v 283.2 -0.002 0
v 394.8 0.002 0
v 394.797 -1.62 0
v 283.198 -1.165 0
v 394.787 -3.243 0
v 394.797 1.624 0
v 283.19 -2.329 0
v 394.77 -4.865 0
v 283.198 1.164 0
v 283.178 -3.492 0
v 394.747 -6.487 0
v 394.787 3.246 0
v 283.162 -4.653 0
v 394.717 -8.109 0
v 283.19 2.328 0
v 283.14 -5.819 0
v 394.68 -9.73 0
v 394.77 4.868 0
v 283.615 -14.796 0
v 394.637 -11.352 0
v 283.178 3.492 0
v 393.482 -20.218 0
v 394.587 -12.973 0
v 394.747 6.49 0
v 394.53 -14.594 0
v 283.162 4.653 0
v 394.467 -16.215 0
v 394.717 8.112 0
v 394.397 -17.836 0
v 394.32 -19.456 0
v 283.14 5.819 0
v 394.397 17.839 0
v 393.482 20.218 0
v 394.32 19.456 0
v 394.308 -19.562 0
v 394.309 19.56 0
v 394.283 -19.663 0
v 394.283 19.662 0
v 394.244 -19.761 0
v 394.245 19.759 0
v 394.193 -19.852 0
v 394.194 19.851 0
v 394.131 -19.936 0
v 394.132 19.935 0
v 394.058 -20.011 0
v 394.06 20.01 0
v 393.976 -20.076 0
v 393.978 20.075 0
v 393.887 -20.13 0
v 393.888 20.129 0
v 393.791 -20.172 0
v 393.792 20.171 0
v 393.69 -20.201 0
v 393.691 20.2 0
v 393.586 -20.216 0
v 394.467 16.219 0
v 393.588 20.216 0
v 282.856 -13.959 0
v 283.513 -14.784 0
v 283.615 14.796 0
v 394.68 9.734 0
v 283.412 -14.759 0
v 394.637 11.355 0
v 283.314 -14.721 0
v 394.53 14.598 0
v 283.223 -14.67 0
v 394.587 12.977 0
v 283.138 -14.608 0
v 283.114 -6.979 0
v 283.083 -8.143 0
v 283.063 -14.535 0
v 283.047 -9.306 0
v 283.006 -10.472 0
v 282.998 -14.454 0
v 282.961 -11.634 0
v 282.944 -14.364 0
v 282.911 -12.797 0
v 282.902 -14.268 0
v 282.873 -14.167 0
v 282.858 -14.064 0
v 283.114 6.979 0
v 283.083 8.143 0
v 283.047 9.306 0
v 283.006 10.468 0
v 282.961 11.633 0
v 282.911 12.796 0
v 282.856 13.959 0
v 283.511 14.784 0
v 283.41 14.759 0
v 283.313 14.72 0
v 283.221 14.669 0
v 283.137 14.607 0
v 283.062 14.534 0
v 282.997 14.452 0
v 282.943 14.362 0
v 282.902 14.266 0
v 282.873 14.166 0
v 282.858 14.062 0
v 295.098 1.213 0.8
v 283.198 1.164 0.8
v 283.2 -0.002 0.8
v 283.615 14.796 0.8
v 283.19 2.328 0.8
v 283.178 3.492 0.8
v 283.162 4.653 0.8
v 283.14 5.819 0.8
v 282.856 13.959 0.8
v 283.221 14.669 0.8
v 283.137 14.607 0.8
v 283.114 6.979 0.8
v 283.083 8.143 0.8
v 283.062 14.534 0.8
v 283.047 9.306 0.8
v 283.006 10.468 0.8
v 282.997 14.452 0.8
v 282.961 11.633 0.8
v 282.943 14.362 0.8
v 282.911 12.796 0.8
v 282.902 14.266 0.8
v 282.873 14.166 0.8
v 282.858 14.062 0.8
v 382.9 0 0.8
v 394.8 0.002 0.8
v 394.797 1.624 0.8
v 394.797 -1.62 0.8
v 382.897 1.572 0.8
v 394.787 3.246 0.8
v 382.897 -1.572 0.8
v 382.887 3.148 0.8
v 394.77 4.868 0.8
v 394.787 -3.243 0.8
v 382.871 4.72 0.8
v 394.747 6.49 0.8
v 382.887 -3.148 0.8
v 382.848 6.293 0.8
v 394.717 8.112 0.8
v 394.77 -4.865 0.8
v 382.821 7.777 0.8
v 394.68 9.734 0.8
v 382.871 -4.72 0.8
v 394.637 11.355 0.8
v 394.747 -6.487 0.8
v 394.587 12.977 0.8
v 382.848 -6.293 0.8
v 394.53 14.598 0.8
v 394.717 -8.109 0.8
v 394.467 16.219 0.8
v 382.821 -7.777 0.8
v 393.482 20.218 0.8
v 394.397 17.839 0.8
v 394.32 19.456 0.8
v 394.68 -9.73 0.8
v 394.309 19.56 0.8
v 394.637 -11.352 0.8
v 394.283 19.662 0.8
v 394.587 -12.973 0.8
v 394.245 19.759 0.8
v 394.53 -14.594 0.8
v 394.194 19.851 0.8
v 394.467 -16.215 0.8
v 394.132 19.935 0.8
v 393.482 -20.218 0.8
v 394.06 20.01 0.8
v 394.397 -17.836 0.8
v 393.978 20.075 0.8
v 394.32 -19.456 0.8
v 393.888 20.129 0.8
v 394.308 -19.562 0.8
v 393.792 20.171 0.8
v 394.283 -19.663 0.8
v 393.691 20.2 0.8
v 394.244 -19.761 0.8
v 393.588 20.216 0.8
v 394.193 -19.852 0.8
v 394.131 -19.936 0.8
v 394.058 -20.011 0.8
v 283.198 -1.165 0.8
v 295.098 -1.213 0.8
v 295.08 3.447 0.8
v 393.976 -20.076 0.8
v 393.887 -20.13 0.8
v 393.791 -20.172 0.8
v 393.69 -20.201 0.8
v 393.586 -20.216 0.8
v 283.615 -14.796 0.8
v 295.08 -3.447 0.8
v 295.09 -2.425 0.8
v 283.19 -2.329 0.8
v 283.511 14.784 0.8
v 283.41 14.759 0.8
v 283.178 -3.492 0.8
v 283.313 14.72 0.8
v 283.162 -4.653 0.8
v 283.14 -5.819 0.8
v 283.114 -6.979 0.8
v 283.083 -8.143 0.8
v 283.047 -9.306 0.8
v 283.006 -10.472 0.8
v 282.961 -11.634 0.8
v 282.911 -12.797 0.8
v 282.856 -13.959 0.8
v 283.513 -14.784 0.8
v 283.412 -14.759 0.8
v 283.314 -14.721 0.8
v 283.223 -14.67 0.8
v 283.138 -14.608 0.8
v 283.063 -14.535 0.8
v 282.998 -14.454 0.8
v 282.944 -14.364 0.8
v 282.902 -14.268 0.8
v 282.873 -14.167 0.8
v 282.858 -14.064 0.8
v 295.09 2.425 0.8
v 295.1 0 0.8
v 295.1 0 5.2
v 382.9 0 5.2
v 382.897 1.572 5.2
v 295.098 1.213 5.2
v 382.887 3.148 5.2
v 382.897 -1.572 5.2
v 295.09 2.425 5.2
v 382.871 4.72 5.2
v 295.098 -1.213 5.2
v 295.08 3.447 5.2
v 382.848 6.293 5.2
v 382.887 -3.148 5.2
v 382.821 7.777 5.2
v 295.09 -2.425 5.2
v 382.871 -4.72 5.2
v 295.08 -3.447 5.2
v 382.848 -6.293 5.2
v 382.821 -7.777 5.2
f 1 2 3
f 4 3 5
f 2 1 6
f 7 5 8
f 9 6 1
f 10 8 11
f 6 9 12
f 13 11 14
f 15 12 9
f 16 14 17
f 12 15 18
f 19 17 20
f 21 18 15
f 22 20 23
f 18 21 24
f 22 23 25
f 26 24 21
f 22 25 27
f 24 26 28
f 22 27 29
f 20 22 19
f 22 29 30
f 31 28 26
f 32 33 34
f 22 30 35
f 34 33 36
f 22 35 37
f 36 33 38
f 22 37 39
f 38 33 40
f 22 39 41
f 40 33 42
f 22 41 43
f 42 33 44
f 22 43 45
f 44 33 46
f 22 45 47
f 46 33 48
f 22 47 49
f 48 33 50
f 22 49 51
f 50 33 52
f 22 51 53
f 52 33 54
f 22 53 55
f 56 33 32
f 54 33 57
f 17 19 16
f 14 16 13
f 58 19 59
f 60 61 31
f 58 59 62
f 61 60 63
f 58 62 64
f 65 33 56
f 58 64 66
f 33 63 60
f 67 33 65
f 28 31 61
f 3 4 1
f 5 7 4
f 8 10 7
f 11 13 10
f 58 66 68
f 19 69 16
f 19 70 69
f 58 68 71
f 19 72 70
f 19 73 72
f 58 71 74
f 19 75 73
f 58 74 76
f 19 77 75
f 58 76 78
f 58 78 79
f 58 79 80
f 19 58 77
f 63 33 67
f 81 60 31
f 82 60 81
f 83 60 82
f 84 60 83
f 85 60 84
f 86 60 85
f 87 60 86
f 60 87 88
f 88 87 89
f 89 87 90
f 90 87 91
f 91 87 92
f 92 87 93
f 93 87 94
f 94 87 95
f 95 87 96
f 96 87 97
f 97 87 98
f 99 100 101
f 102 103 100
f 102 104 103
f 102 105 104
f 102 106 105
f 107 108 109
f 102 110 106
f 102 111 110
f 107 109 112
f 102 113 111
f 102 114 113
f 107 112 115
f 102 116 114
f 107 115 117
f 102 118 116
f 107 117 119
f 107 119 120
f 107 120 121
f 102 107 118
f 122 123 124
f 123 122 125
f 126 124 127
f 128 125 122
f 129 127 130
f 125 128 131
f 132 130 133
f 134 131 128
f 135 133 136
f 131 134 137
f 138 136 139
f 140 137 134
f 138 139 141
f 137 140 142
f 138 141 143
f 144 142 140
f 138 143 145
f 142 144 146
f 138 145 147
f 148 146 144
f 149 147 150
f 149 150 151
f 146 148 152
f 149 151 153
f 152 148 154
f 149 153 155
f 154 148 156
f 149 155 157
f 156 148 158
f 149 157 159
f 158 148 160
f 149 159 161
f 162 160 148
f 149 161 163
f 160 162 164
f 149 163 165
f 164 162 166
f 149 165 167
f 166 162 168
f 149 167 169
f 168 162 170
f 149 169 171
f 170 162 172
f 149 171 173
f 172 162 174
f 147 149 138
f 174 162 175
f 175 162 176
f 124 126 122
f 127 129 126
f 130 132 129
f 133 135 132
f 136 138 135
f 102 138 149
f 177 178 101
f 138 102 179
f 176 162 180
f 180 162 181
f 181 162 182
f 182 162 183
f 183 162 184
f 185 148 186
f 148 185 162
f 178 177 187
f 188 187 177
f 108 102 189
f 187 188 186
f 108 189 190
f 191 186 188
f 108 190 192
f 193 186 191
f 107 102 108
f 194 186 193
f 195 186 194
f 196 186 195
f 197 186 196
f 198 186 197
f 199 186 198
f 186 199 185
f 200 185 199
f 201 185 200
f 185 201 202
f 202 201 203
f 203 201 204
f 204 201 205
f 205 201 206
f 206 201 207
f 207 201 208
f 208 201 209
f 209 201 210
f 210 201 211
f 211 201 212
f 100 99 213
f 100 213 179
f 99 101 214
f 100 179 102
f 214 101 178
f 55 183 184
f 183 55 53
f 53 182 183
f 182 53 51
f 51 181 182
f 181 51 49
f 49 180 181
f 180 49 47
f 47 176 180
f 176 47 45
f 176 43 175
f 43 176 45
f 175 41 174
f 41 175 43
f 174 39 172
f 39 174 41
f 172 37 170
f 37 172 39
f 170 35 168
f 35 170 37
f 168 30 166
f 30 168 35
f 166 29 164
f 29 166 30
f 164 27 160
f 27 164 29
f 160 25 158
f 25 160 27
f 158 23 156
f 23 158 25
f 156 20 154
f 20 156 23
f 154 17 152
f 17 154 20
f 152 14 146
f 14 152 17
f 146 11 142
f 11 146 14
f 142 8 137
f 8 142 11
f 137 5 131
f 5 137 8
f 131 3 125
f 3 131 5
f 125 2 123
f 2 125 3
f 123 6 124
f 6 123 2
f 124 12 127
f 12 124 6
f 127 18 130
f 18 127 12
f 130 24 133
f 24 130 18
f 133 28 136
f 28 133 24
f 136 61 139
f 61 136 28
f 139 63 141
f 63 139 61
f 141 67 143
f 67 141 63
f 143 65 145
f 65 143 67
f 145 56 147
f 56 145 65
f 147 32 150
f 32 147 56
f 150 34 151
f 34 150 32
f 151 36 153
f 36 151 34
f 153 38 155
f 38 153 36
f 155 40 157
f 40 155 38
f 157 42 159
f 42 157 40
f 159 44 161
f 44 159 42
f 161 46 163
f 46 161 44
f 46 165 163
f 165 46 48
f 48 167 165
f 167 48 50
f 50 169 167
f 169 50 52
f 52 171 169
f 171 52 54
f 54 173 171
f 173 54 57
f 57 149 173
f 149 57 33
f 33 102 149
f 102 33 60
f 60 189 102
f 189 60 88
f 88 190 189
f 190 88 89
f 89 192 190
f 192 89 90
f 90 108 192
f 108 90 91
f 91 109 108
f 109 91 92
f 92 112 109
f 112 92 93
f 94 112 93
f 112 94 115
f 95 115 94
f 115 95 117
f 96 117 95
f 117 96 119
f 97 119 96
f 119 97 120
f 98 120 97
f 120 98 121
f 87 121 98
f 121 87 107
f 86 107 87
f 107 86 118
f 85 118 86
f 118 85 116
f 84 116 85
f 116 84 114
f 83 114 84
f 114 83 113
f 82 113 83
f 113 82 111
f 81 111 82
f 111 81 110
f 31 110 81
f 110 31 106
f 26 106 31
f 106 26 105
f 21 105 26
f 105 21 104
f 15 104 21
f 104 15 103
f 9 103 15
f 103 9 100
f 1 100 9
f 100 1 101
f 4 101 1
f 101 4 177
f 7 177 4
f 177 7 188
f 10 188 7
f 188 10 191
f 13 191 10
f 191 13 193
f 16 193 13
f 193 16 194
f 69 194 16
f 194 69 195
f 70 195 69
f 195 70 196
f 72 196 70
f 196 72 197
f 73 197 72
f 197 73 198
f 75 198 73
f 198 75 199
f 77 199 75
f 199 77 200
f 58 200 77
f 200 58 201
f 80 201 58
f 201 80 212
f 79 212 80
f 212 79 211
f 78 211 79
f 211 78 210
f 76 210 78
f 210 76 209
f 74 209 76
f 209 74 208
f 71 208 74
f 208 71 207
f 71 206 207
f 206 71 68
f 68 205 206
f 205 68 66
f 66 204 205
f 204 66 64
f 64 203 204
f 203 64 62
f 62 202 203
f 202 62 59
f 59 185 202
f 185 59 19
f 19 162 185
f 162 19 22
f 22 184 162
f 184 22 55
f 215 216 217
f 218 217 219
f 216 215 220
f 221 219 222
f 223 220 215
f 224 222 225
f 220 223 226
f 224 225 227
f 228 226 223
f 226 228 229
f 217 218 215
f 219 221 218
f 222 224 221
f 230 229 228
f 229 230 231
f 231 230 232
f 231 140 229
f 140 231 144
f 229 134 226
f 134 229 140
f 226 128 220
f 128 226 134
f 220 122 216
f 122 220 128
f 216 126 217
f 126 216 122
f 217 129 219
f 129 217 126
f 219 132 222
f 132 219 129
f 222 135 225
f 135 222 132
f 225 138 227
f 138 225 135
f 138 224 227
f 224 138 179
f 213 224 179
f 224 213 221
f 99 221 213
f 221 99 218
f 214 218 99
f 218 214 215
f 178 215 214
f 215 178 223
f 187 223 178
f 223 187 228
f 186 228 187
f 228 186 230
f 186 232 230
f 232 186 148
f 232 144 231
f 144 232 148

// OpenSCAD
// Gen-EB — bobbin BASE (bottom flange + hub). Print x12, flange down. Wind 24 AWG x 133 t around
// the hub with the LID glued on (coil_lid.stl). Copper lives ONLY between the flanges (no proud winds).
include <parameters.scad>;
$fn = 48;
module sector_2d(r_in, r_out, ang) {
    polygon([
        for (a = [-ang/2 : ang/24 : ang/2]) [r_in*cos(a), r_in*sin(a)],
        for (a = [ang/2 : -ang/24 : -ang/2]) [r_out*cos(a), r_out*sin(a)]
    ]);
}
module footprint_2d() { offset(r=wall) sector_2d(coil_id_r, coil_od_r, span_deg); }
module hub_2d()       { offset(delta=-coil_core_inset) sector_2d(coil_id_r, coil_od_r, span_deg); }

union() {
    linear_extrude(flange_t) footprint_2d();
    translate([0, 0, flange_t - 0.01]) linear_extrude(former_web + 0.01) hub_2d();
}
